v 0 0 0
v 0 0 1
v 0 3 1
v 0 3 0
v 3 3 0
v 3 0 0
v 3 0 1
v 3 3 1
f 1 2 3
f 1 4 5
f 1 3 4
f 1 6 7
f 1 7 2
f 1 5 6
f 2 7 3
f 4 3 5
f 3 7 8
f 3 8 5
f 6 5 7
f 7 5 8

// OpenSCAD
/* Warning, this is a very basic generator with a lot of approximation 
input data : [VDFN, Q9B, 3x3x1mm, 10, , A, C04-21359A]
generated by com.zoubworld.electronics.cad.model3d.Basic
Date : Sun Feb 15 10:50:49 CET 2026
*/

//body
color("black")
translate([0,0,0])
cube([3.0,3.0,1.0], center=false);
